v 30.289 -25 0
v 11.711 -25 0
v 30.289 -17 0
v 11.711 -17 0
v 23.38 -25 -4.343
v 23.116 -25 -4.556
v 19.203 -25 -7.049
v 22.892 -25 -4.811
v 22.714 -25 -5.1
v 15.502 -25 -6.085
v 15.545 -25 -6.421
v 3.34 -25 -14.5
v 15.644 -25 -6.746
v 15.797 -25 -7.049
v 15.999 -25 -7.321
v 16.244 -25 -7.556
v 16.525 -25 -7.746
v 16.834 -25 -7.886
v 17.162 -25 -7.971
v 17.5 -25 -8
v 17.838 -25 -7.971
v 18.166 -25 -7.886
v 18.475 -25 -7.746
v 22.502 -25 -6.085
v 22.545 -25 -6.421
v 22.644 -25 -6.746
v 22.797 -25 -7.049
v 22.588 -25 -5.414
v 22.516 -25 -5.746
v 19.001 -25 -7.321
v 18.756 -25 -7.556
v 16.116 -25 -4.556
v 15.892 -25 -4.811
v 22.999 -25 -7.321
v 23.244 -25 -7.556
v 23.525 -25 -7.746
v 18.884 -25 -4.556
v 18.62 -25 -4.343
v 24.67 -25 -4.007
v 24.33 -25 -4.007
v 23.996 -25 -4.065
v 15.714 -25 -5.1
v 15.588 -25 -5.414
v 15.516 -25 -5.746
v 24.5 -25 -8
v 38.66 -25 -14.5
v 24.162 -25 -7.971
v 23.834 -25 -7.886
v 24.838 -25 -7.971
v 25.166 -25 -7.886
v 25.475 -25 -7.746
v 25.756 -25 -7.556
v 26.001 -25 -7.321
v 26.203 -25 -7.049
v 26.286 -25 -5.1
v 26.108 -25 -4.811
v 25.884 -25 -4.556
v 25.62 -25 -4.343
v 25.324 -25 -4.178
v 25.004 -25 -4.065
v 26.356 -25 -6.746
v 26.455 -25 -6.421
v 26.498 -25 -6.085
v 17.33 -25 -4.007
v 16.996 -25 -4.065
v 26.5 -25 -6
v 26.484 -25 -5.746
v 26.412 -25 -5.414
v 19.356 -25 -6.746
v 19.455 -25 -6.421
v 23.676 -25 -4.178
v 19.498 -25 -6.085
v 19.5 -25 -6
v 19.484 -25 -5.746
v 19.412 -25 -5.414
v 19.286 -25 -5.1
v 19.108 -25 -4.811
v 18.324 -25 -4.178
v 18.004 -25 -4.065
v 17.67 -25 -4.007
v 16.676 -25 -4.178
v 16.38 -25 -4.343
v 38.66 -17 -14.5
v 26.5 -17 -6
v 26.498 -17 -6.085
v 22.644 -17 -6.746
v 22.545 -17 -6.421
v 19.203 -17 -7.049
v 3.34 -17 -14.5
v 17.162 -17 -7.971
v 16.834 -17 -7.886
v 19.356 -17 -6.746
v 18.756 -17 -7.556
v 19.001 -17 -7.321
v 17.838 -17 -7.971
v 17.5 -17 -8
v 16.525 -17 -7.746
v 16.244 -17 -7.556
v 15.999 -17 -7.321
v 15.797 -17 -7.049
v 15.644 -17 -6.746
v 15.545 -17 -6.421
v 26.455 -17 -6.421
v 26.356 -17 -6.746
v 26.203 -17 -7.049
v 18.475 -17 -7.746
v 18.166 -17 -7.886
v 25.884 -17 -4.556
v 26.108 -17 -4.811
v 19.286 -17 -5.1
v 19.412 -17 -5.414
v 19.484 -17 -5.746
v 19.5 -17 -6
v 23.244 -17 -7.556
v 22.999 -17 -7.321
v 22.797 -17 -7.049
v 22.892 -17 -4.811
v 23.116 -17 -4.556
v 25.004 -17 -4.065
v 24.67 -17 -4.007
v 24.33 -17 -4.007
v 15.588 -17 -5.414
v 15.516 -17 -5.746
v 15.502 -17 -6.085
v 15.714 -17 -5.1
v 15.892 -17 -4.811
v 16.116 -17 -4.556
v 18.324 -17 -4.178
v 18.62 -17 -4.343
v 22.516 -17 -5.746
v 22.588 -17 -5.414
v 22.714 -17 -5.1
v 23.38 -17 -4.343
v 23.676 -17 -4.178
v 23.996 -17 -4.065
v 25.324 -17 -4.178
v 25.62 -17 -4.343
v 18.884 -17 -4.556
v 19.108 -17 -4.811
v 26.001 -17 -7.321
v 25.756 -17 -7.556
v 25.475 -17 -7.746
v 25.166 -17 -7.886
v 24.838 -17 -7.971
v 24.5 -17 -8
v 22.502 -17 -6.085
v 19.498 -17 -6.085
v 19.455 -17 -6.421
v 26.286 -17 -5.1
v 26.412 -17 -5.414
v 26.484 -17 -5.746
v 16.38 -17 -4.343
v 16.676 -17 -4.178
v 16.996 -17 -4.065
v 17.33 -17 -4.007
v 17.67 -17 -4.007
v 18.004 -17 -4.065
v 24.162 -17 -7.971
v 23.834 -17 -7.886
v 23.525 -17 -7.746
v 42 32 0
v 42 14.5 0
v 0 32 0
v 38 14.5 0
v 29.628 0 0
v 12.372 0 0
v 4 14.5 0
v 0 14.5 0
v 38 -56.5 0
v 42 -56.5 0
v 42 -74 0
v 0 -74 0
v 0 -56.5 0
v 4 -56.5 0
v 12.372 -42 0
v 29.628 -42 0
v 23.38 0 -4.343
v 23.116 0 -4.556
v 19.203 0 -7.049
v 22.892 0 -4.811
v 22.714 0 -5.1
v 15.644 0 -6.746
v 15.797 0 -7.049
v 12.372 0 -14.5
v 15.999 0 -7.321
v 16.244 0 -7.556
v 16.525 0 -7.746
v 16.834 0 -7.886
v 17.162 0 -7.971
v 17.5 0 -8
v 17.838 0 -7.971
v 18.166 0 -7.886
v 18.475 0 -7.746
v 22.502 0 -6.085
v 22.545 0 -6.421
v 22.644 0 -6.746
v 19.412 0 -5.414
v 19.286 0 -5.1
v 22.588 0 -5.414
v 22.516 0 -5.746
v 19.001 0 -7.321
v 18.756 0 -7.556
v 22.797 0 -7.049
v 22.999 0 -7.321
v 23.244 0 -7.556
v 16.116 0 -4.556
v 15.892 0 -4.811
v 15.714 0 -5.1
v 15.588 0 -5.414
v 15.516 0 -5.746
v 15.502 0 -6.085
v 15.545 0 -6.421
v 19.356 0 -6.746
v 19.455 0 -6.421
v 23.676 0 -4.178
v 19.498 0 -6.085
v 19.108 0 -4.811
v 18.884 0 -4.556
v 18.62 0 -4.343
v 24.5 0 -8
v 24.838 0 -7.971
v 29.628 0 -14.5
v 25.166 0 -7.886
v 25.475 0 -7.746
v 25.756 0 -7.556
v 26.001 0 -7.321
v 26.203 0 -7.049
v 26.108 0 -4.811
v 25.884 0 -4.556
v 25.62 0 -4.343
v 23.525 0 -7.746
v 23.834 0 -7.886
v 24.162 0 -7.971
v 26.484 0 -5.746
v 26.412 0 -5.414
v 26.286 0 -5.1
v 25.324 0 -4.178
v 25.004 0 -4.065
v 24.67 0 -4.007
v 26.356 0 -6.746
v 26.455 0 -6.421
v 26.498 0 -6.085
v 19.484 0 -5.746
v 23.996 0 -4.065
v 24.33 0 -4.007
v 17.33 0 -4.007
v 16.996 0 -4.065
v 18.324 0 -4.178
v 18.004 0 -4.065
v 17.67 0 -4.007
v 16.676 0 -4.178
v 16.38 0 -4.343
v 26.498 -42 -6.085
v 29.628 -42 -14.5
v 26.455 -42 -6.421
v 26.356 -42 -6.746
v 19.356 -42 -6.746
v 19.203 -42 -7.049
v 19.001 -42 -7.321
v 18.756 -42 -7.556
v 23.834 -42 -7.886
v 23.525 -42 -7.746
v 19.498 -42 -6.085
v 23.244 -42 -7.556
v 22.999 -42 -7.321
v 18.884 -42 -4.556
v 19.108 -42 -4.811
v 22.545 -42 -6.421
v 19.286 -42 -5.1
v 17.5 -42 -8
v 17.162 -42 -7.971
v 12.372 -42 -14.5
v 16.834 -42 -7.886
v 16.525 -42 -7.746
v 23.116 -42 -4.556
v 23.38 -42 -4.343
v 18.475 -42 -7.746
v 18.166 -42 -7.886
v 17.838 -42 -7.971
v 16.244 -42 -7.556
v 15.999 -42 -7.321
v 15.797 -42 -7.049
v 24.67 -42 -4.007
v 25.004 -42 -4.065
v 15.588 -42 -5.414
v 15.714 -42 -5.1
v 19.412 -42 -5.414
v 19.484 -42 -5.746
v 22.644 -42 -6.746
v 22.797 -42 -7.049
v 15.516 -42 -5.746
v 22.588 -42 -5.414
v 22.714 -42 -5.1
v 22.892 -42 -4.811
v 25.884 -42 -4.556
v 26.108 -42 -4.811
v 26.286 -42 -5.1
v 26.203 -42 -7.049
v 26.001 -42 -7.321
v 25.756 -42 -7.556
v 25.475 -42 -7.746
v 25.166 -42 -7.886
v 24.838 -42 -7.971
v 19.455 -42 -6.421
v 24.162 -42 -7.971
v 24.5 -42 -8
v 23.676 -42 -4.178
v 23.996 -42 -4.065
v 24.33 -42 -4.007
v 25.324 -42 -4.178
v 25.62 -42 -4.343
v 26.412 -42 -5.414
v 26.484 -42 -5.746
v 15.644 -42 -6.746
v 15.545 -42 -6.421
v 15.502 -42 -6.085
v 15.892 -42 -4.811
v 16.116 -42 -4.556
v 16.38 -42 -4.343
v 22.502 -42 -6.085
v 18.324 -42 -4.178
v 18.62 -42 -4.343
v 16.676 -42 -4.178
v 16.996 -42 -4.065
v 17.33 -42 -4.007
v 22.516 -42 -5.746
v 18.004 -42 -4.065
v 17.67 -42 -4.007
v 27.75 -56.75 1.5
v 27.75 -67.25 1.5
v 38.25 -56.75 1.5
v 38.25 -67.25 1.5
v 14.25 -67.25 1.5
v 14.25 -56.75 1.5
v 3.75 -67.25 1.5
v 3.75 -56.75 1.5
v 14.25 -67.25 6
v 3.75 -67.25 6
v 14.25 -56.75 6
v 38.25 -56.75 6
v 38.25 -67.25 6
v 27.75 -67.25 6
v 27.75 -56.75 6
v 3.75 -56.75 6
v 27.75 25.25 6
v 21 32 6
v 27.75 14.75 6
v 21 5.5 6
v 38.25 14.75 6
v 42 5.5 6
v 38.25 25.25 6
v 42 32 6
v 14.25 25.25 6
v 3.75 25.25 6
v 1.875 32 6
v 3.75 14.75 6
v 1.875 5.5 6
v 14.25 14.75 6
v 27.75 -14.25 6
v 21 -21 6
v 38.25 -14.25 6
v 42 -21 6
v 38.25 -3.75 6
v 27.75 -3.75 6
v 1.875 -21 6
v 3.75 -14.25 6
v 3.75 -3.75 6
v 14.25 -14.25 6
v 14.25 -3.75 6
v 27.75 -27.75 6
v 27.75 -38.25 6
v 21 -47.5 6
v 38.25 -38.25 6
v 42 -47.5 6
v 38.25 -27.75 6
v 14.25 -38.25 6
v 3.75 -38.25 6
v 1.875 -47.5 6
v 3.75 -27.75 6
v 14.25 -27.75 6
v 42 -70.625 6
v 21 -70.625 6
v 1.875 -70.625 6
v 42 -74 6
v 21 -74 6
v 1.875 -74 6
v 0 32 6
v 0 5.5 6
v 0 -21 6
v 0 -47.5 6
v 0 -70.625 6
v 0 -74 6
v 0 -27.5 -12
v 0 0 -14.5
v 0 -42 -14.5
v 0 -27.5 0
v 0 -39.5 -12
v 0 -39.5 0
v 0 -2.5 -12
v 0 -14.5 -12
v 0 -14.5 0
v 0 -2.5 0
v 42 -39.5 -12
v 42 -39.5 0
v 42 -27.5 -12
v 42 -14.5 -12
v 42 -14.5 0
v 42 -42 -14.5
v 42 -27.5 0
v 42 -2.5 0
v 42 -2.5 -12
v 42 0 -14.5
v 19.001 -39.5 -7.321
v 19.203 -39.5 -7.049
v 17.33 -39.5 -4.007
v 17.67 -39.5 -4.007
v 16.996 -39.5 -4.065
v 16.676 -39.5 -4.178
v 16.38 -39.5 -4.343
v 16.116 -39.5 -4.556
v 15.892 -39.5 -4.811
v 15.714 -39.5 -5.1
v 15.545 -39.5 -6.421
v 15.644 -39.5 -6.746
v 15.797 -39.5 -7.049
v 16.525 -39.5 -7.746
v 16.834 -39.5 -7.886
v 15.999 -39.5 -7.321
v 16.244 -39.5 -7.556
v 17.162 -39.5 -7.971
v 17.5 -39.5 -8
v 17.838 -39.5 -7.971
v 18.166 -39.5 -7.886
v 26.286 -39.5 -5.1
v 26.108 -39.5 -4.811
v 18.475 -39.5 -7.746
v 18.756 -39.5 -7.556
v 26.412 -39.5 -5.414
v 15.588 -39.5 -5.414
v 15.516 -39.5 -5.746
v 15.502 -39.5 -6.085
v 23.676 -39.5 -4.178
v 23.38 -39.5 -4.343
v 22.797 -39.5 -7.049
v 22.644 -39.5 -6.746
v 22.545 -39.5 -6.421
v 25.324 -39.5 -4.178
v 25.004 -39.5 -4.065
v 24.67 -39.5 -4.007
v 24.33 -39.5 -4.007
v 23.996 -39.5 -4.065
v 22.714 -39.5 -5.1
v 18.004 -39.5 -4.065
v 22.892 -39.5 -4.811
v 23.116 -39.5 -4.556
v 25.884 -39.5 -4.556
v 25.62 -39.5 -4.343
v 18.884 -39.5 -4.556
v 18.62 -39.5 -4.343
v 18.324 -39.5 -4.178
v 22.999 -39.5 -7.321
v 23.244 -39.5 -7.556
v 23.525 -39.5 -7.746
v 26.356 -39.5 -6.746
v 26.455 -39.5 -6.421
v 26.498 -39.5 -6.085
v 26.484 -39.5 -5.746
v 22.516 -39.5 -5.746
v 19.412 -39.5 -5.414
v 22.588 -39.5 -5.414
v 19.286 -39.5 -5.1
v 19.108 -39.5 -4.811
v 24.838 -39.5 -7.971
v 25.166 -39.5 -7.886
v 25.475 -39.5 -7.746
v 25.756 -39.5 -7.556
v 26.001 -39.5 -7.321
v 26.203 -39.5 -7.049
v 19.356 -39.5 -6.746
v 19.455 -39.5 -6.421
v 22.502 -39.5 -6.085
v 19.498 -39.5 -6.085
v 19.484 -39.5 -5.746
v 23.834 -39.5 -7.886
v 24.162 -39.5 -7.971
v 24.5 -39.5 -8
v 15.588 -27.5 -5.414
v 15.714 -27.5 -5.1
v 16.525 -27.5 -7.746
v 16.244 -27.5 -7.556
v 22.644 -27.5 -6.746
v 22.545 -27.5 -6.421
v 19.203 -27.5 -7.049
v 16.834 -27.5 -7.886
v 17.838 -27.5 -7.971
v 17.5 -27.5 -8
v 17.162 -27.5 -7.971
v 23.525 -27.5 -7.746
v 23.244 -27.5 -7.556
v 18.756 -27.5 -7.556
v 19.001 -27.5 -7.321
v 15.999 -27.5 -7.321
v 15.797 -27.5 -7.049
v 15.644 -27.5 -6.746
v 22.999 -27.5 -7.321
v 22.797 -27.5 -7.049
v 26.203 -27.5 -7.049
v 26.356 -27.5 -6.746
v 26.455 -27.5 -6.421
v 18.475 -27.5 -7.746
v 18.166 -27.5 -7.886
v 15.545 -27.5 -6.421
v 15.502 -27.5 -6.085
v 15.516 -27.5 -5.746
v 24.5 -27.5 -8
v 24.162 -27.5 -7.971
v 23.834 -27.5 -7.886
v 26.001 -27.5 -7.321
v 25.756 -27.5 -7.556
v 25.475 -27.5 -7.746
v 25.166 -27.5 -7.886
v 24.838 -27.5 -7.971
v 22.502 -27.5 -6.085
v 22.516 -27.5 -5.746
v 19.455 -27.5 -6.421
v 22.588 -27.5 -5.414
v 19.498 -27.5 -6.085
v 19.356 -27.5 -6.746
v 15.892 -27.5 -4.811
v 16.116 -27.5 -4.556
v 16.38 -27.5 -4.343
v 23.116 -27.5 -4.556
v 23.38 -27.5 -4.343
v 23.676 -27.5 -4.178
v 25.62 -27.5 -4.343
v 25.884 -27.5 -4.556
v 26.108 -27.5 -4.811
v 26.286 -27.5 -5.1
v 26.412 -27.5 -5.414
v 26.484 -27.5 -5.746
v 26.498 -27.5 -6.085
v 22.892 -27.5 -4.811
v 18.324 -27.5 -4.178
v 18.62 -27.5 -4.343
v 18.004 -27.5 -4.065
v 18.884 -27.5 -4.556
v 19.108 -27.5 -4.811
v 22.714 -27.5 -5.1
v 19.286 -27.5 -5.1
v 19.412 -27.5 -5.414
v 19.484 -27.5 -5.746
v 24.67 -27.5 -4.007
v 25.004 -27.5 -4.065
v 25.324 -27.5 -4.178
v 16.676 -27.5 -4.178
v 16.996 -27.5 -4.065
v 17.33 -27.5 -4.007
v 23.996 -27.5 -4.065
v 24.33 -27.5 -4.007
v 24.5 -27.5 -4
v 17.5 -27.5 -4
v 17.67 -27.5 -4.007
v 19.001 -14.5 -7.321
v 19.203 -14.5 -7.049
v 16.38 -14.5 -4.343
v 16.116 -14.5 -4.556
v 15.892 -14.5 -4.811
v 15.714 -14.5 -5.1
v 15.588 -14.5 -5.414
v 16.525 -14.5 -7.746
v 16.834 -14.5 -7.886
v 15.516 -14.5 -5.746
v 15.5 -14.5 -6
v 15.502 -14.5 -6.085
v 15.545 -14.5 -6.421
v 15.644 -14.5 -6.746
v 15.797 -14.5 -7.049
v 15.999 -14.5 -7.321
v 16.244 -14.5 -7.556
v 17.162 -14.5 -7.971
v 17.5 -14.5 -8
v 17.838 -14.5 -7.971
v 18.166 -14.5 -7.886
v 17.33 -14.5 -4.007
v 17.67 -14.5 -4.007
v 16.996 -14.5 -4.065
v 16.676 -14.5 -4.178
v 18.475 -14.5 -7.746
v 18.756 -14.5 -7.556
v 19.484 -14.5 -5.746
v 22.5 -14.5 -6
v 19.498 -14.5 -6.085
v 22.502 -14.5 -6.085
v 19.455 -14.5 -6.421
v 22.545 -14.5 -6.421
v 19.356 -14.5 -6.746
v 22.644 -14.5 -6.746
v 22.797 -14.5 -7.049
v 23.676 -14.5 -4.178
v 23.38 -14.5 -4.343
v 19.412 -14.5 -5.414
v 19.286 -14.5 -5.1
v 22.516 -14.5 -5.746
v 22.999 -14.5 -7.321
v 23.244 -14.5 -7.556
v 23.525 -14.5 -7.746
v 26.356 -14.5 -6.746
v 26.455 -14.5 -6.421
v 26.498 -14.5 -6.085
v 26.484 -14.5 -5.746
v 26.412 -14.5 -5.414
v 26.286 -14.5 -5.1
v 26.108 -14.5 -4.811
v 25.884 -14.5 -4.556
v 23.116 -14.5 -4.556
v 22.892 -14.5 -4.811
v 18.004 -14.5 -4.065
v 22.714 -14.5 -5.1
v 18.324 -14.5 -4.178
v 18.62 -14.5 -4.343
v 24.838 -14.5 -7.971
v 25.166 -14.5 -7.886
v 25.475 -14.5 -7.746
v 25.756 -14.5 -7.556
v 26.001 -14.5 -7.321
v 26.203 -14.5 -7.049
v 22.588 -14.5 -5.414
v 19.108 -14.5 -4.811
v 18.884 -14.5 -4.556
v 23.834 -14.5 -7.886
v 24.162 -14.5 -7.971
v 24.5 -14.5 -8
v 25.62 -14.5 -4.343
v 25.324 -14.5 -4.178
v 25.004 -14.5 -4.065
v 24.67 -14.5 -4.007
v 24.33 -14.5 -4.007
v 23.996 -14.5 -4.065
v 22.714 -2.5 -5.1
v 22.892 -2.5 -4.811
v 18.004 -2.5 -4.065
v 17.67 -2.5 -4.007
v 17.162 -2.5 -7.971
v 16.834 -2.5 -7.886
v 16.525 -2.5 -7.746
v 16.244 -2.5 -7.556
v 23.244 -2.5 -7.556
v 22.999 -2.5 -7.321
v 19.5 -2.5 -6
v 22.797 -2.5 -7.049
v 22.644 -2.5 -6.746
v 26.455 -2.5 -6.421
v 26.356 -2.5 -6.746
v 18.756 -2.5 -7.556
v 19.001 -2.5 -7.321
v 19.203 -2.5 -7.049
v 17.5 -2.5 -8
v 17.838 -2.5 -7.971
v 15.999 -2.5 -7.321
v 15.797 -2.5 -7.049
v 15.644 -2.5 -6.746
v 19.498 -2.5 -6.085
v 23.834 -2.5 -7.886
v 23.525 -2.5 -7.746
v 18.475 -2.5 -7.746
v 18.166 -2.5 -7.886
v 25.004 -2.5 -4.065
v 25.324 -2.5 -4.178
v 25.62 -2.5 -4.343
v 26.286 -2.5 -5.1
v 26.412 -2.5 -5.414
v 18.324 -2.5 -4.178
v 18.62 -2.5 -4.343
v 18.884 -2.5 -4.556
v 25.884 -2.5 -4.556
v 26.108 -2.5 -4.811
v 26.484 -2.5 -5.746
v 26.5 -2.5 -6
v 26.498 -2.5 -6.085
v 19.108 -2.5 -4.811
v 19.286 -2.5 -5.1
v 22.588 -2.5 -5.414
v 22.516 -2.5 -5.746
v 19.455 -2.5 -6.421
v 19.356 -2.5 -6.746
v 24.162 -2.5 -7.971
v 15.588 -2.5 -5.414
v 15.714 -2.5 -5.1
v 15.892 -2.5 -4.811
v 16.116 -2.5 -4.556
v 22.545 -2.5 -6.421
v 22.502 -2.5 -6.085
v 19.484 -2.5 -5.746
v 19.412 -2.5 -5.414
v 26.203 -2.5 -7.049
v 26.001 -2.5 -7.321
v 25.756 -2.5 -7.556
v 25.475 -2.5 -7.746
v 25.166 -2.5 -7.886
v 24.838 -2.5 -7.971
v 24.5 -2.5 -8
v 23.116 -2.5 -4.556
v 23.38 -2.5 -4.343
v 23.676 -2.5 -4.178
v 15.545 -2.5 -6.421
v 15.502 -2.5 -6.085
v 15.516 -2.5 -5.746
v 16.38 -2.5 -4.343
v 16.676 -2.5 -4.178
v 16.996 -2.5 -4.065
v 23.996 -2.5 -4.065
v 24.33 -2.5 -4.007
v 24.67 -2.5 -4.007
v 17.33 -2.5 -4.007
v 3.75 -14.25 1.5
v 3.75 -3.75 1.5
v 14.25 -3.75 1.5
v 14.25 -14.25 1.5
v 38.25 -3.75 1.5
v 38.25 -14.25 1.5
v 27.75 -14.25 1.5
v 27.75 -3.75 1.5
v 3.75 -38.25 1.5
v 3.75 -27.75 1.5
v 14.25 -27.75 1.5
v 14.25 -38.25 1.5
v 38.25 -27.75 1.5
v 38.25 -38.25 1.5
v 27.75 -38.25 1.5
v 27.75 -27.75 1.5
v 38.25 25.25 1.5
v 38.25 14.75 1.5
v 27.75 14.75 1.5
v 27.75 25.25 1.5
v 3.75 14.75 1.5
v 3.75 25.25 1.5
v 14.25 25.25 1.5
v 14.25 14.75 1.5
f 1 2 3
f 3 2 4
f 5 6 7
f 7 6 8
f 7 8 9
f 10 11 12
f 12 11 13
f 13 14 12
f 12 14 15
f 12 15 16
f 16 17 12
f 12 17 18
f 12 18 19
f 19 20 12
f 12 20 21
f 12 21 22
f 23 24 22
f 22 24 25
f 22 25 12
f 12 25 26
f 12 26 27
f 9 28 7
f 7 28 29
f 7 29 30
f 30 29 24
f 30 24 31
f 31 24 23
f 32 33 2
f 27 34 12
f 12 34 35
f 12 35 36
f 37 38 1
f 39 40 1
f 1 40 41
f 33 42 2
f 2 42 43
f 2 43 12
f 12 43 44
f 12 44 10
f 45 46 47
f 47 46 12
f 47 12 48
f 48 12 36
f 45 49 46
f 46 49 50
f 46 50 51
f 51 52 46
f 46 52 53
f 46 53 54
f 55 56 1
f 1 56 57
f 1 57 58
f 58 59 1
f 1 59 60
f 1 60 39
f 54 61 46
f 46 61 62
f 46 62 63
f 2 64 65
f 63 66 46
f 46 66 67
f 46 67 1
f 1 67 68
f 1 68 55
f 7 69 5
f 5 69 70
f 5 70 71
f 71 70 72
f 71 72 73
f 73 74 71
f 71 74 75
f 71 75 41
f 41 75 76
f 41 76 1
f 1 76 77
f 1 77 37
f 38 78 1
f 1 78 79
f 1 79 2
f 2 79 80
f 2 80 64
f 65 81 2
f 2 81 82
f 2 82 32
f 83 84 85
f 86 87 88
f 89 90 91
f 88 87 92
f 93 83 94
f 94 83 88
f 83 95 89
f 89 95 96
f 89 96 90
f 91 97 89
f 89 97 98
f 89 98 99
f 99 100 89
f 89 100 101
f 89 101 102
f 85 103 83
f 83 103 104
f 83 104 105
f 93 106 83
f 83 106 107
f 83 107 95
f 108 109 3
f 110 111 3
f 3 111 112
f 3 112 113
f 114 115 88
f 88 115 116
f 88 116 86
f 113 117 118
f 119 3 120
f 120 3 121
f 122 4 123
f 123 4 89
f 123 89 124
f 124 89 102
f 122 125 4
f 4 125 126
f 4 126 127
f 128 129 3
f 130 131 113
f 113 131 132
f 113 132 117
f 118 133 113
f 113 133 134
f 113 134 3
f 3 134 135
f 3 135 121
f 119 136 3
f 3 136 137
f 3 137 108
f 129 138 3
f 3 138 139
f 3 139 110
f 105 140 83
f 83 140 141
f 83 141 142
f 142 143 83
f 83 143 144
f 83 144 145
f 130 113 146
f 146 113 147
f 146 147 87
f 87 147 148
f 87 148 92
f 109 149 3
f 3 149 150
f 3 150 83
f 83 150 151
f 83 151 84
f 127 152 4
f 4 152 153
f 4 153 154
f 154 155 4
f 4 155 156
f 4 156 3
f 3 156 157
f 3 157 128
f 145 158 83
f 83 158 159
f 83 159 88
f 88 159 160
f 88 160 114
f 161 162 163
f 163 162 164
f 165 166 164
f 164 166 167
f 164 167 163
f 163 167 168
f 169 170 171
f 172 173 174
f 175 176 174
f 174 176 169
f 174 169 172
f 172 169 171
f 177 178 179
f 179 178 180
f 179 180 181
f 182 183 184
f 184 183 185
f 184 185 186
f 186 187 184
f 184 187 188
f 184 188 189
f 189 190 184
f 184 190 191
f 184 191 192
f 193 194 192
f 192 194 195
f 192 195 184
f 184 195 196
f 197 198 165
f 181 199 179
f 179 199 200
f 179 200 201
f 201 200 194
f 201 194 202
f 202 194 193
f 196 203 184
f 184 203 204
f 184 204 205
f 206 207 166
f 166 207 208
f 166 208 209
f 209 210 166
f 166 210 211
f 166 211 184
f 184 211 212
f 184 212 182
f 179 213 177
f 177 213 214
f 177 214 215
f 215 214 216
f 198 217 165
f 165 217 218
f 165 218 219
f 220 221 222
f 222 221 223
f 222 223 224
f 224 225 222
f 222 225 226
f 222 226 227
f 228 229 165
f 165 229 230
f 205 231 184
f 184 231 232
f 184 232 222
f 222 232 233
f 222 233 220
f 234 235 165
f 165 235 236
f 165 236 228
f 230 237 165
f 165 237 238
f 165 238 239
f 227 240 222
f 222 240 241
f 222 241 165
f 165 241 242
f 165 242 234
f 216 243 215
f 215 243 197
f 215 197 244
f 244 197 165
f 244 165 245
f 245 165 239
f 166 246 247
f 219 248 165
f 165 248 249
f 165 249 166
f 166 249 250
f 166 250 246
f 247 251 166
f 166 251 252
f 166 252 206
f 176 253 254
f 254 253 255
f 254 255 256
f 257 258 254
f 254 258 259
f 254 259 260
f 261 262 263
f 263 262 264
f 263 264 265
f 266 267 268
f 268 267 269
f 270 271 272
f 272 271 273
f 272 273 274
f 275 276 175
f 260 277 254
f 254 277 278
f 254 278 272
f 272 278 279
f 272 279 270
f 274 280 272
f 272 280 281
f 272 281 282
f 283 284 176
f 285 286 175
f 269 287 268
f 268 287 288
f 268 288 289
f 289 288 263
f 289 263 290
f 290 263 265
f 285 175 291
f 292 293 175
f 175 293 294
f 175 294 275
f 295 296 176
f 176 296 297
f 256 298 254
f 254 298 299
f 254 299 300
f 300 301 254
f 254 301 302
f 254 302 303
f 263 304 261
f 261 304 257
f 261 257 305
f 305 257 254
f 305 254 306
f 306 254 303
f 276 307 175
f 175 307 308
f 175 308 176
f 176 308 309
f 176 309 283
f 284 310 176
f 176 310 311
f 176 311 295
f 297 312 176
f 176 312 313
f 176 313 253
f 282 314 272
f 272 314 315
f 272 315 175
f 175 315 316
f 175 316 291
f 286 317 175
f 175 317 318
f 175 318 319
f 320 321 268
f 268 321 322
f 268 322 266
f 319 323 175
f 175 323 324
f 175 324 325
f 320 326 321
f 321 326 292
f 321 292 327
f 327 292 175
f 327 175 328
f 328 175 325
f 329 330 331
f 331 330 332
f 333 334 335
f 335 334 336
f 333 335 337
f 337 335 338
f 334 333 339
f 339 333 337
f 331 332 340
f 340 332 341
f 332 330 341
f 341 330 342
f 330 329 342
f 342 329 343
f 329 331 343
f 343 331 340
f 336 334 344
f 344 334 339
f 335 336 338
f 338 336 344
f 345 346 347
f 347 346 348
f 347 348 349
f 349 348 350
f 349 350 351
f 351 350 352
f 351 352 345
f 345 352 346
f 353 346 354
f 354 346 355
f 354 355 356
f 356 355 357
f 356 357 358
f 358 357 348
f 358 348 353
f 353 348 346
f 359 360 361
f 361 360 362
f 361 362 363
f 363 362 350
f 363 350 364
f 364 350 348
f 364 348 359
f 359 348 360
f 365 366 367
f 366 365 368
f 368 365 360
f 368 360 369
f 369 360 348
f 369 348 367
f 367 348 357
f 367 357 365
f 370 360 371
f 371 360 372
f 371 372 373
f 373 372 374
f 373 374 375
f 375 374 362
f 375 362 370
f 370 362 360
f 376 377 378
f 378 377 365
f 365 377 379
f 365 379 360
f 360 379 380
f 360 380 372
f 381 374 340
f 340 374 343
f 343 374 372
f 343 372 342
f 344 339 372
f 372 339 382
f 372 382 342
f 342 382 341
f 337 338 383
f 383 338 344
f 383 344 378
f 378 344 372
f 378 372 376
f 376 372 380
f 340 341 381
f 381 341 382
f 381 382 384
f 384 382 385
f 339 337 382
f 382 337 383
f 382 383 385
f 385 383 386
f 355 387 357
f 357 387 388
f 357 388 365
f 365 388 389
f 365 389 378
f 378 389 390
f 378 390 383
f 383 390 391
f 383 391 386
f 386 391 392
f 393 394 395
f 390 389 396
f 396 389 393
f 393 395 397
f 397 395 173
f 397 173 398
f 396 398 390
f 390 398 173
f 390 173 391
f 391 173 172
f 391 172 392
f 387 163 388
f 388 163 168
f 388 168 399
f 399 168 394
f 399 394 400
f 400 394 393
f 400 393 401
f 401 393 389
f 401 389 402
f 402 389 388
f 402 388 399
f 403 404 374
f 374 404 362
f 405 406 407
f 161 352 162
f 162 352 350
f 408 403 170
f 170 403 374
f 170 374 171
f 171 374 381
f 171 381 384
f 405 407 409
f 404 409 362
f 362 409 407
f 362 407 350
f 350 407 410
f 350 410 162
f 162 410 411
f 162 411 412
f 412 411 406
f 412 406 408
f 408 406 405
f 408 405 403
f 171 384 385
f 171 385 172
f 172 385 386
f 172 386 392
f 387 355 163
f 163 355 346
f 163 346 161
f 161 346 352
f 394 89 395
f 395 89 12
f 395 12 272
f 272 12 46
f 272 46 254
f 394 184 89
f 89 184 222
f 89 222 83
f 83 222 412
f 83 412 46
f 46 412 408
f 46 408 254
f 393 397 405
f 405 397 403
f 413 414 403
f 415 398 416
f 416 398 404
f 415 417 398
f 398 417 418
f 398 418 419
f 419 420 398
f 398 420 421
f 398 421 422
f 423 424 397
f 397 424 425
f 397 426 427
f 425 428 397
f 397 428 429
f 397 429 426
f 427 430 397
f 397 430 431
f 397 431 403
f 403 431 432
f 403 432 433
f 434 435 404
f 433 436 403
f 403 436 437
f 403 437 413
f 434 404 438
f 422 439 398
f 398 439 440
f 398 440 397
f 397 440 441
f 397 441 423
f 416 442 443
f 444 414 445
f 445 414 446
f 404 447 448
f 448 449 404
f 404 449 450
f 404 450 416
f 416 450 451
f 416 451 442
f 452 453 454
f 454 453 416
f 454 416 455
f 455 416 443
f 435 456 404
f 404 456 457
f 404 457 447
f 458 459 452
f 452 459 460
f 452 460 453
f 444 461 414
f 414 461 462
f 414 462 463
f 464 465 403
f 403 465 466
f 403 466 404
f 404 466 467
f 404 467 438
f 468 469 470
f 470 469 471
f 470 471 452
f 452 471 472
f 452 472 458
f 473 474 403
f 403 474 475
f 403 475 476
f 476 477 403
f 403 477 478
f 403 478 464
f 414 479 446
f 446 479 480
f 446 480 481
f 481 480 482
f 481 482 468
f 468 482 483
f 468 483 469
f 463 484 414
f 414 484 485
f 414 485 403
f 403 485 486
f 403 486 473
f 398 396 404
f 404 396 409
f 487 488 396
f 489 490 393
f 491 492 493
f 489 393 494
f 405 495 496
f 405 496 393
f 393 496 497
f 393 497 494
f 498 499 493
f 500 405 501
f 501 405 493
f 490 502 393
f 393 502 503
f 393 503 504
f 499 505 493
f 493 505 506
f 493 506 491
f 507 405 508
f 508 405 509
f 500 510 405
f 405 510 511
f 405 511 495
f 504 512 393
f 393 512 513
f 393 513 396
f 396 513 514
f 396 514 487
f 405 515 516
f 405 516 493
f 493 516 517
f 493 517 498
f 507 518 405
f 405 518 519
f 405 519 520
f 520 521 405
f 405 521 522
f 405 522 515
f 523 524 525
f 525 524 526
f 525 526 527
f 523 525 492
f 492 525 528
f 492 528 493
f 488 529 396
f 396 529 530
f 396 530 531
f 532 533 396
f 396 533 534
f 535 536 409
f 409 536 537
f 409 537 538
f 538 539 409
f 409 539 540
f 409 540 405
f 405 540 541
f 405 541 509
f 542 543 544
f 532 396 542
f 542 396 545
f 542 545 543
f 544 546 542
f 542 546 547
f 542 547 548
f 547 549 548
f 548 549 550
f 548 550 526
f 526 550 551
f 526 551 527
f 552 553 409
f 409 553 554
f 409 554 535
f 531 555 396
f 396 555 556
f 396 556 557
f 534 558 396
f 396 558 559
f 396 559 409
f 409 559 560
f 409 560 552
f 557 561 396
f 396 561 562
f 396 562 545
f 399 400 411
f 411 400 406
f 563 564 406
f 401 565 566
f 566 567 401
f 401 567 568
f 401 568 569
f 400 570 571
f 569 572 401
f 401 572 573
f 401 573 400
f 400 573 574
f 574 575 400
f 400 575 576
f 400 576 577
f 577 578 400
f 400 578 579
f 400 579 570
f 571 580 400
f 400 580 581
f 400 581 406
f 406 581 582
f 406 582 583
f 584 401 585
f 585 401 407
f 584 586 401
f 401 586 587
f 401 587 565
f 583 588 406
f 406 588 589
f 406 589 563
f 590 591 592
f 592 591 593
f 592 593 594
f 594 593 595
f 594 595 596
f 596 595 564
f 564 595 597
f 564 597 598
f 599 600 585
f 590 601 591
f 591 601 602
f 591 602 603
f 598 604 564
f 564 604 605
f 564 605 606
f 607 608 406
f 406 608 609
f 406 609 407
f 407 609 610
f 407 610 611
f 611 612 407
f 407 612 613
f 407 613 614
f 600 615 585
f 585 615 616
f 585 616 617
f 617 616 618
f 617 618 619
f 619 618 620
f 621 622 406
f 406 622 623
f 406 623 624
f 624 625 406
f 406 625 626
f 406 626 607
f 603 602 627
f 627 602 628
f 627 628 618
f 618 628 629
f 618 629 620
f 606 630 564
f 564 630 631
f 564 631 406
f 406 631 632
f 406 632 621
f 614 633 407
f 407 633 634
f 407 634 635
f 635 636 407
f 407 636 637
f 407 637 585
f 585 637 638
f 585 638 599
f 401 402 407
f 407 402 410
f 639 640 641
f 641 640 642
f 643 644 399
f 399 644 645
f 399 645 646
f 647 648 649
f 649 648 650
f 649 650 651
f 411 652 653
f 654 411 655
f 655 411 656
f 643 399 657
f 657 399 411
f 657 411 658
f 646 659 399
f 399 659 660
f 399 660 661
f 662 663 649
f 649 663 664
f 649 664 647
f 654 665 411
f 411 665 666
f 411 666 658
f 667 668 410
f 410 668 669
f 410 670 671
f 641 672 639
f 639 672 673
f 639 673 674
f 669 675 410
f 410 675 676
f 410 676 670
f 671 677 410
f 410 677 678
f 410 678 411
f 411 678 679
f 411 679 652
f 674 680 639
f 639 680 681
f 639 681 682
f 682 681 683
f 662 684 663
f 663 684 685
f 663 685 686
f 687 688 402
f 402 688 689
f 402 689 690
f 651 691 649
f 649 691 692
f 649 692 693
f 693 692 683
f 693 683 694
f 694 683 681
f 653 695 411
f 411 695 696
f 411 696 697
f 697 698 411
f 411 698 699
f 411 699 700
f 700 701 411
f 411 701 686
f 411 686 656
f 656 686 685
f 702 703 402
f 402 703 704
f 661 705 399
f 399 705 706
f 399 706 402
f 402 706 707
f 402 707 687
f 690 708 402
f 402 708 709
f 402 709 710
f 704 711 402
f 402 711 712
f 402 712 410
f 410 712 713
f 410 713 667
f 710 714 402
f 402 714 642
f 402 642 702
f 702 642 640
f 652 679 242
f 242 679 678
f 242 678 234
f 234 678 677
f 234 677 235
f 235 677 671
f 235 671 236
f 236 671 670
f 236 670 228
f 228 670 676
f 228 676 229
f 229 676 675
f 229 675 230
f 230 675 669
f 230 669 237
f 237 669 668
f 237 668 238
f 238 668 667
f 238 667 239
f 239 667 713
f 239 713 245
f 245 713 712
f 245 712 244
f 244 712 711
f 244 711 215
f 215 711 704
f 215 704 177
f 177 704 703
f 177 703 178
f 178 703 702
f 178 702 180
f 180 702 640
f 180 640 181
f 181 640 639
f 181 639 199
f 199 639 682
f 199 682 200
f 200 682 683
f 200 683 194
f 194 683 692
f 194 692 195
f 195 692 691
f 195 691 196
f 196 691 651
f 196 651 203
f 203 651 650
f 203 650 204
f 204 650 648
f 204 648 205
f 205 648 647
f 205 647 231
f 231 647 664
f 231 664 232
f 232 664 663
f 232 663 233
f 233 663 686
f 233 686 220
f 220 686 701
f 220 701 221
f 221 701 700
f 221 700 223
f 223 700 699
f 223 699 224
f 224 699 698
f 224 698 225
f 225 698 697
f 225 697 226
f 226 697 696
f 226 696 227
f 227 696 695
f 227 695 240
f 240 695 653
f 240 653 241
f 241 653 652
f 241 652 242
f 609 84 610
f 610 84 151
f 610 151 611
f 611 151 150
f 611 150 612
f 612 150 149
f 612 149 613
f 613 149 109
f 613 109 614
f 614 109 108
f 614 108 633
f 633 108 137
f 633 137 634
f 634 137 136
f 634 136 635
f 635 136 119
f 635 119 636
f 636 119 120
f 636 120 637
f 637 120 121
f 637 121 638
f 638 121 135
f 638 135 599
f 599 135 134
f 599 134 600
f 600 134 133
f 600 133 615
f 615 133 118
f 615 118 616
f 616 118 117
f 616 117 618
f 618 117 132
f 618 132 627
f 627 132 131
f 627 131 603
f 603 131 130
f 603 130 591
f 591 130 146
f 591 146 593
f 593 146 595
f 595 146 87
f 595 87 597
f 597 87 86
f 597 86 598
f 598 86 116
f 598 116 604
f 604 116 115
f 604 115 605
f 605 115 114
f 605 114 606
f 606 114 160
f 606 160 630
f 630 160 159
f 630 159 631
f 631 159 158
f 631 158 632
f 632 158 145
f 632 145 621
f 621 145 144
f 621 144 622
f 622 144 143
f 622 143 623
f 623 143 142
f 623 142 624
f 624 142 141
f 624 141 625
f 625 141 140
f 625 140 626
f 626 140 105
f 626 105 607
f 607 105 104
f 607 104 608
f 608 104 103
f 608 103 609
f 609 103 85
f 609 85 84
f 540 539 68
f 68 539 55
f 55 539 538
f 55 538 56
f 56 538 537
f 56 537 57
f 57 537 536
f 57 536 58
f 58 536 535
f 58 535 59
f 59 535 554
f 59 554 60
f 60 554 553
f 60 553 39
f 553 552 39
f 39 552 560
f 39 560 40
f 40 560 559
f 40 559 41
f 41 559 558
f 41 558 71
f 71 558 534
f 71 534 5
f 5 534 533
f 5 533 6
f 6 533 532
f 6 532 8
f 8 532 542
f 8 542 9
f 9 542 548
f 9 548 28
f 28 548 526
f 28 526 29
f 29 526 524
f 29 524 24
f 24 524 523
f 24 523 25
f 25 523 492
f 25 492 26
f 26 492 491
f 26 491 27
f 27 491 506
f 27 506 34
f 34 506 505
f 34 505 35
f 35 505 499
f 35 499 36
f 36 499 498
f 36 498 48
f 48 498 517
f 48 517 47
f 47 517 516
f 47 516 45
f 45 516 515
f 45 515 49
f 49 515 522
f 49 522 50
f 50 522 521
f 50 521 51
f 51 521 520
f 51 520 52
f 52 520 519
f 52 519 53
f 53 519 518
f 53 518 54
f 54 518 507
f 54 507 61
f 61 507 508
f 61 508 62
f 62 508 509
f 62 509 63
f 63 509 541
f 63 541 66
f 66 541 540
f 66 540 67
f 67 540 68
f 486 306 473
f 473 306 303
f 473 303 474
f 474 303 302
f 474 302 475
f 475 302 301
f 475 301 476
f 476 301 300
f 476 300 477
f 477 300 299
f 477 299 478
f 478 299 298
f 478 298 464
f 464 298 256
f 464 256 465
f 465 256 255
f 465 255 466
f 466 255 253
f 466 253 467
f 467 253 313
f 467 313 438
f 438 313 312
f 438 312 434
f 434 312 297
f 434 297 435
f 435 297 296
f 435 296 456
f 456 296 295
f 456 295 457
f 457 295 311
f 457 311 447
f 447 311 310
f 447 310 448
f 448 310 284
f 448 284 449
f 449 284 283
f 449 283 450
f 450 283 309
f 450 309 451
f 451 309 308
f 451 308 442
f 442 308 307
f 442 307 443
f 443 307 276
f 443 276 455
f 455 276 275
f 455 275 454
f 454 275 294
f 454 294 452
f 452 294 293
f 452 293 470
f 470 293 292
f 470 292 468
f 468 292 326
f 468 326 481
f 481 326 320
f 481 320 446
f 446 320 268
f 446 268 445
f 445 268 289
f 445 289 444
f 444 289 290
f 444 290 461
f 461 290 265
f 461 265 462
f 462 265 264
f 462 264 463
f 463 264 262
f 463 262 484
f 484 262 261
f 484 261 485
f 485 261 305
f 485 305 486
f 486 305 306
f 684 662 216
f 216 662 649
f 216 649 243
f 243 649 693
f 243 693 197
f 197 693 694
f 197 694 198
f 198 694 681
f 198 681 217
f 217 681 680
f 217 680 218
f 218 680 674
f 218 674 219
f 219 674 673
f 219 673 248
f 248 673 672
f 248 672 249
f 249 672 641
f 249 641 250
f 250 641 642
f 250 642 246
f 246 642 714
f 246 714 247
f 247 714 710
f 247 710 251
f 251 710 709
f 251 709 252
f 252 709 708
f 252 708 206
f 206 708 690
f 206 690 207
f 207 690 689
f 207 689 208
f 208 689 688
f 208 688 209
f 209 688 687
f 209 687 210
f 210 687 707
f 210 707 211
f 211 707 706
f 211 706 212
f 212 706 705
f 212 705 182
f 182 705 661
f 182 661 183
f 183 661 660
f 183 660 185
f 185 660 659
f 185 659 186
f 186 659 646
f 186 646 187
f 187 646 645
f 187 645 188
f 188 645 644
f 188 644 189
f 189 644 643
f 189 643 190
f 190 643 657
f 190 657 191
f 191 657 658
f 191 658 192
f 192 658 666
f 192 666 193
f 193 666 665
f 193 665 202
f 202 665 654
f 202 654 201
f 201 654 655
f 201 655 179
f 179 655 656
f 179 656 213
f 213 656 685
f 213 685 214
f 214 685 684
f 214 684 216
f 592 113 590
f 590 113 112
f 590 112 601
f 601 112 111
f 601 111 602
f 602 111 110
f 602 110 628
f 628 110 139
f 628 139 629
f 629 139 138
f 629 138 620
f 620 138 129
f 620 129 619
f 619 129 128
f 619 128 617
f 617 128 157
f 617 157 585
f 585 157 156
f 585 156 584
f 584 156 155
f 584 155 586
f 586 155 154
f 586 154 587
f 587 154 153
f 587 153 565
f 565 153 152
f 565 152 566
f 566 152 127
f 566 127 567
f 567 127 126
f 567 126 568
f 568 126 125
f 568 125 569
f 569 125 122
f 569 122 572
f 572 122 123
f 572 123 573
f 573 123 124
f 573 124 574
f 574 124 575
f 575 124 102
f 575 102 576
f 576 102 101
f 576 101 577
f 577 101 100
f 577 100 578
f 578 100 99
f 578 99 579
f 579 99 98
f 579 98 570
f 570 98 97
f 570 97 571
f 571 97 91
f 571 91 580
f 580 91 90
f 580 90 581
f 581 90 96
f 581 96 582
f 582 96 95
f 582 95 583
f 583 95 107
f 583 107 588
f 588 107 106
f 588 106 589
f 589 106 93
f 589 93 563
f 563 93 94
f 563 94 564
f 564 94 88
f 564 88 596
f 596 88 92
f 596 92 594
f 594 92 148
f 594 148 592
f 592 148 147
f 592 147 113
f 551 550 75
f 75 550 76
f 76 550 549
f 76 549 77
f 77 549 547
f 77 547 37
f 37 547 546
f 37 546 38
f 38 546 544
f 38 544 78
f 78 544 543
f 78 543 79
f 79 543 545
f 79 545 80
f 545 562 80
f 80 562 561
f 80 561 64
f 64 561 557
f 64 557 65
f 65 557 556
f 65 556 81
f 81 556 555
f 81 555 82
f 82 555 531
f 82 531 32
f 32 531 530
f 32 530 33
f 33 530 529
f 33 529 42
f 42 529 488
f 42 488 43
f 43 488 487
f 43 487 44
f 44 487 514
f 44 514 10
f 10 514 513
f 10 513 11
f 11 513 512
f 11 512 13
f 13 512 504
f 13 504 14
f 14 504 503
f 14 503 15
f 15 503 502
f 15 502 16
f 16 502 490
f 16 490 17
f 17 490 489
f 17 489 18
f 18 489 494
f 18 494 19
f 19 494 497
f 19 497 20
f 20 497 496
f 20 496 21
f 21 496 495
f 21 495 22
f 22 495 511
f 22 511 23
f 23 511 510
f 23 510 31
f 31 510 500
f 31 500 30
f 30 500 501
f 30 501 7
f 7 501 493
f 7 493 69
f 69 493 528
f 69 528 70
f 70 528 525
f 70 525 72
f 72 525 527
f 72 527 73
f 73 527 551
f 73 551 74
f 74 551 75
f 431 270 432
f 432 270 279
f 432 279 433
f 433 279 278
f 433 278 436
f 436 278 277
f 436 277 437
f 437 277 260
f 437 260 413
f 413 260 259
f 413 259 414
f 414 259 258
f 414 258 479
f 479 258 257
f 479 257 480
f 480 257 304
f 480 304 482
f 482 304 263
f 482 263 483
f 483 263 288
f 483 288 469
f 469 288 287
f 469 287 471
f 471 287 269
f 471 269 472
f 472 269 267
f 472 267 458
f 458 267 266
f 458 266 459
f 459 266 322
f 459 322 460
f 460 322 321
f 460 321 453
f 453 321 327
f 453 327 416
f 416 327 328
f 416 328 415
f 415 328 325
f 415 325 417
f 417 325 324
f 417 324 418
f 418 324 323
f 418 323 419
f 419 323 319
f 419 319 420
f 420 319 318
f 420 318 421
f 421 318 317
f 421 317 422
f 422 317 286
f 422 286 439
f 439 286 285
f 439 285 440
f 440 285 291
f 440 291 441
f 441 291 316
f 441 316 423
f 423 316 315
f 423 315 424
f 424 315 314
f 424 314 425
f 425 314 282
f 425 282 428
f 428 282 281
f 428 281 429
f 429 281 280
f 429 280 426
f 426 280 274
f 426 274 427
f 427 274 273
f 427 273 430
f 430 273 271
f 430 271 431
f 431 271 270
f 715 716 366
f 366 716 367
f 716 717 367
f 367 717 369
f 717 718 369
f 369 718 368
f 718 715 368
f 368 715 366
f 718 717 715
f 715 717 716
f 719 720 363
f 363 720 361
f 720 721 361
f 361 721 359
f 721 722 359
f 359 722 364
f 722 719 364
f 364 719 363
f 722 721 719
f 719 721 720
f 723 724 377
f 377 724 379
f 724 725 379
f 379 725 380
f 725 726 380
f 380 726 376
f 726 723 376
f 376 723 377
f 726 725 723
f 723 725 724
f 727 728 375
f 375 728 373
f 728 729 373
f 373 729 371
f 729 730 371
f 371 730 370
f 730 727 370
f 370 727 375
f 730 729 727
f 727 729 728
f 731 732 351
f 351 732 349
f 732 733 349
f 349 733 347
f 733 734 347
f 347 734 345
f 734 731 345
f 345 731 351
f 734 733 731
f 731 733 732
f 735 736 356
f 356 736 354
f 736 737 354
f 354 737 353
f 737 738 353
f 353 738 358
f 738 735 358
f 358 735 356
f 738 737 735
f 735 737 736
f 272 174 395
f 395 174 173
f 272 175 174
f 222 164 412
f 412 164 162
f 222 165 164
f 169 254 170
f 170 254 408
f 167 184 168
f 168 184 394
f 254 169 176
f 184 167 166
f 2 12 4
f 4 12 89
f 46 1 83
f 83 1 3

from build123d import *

# Parameters (mm, degrees)
ESQUISSE1_W                  = 42
ESQUISSE1_H                  = 106
BOSS_EXTRU_1_DEPTH           = 6
ESQUISSE2_W                  = 42
ESQUISSE2_H                  = 17
BOSS_EXTRU_3_DEPTH           = 14.5
ESQUISSE3_W                  = 12
ESQUISSE3_H                  = 12
ENL_V_MAT_EXTRU_3_DEPTH      = 87.314830707
ESQUISSE4_R                  = 2
ENL_V_MAT_EXTRU_4_DEPTH      = 42
ESQUISSE5_W                  = 10.5
ESQUISSE5_H                  = 10.5
ENL_V_MAT_EXTRU_5_DEPTH      = 4.5
SYM_TRIE3_COPY_1_SKETCH_W    = 10.5
SYM_TRIE3_COPY_1_SKETCH_H    = 10.5
SYM_TRIE3_COPY_1_DEPTH       = 4.5
SYM_TRIE4_COPY_1_SKETCH_W    = 10.5
SYM_TRIE4_COPY_1_SKETCH_H    = 10.5
SYM_TRIE4_COPY_1_DEPTH       = 4.5
SYM_TRIE5_COPY_1_SKETCH_W    = 10.5
SYM_TRIE5_COPY_1_SKETCH_H    = 10.5
SYM_TRIE5_COPY_1_DEPTH       = 4.5
SYM_TRIE5_COPY_2_SKETCH_W    = 10.5
SYM_TRIE5_COPY_2_SKETCH_H    = 10.5
SYM_TRIE5_COPY_2_DEPTH       = 4.5
SYM_TRIE5_COPY_3_SKETCH_W    = 10.5
SYM_TRIE5_COPY_3_SKETCH_H    = 10.5
SYM_TRIE5_COPY_3_DEPTH       = 4.5
BOSS_EXTRU_4_DEPTH           = 4
BOSS_EXTRU_5_REACH           = 88.315
R_P_TITION_CIRCULAIRE1_COUNT = 2
SYM_TRIE6_COPY_1_DEPTH       = 4
SYM_TRIE6_COPY_2_REACH       = 88.315
ESQUISSE8_W                  = 12
ESQUISSE8_H                  = 8
BOSS_EXTRU_6_DEPTH           = 14.5
CHANFREIN2_SIZE              = 15
CHANFREIN2_SIZE_2            = 8.660254038
SYM_TRIE7_START              = -25
SYM_TRIE7_DEPTH              = 8


# Read off the part's stored shape, not the designer's step: Symétrie7
with BuildPart() as part:
    # Esquisse1 → Boss.-Extru.1 (new body)
    with BuildSketch(Plane.XY):
        with Locations((21, -21)):
            Rectangle(ESQUISSE1_W, ESQUISSE1_H)
    extrude(amount=BOSS_EXTRU_1_DEPTH)

    # Esquisse2 → Boss.-Extru.3 (add)
    with BuildSketch(Plane(origin=(0, 0, 0), x_dir=(-1, 0, 0), z_dir=(0, 0, -1))):
        with Locations((-21, -33.5)):
            Rectangle(ESQUISSE2_W, ESQUISSE2_H)
    boss_extru_3 = extrude(amount=BOSS_EXTRU_3_DEPTH)

    # Esquisse3 → Enlèv. mat.-Extru.3 (cut, through all)
    with BuildSketch(Plane(origin=(42, 0, 0), x_dir=(0, 0, -1), z_dir=(1, 0, 0))):
        with Locations((6, -33.5)):
            Rectangle(ESQUISSE3_W, ESQUISSE3_H)
    enl_v_mat_extru_3 = extrude(amount=-ENL_V_MAT_EXTRU_3_DEPTH, mode=Mode.SUBTRACT)

    # Symétrie1: Boss.-Extru.3, Enlèv. mat.-Extru.3 across plane
    add(boss_extru_3.mirror(Plane(origin=(0, -21, 0), x_dir=(0, 0, 1), z_dir=(0, -1, 0))))
    add(enl_v_mat_extru_3.mirror(Plane(origin=(0, -21, 0), x_dir=(0, 0, 1), z_dir=(0, -1, 0))), mode=Mode.SUBTRACT)

    # Esquisse4 → Enlèv. mat.-Extru.4 (cut)
    with BuildSketch(Plane.XZ.offset(42)):
        with Locations(Location((24.5, -6, 0), (0, 0, 270))):
            Circle(ESQUISSE4_R)
        with Locations(Location((17.5, -6, 0), (0, 0, 270))):
            Circle(ESQUISSE4_R)
    extrude(amount=-ENL_V_MAT_EXTRU_4_DEPTH, mode=Mode.SUBTRACT)

    # Esquisse5 → Enlèv. mat.-Extru.5 (cut)
    with BuildSketch(Plane.XY.offset(6)):
        with Locations((9, -9)):
            Rectangle(ESQUISSE5_W, ESQUISSE5_H)
    enl_v_mat_extru_5 = extrude(amount=-ENL_V_MAT_EXTRU_5_DEPTH, mode=Mode.SUBTRACT)

    # Symétrie2: Enlèv. mat.-Extru.5 across plane
    add(enl_v_mat_extru_5.mirror(Plane(origin=(21, 0, 0), x_dir=(0, 0, 1), z_dir=(1, 0, 0))), mode=Mode.SUBTRACT)

    # Symétrie3: Enlèv. mat.-Extru.5 across plane
    add(enl_v_mat_extru_5.mirror(Plane(origin=(0, -21, 0), x_dir=(0, 0, 1), z_dir=(0, -1, 0))), mode=Mode.SUBTRACT)

    # Symétrie3 copy 1 sketch → Symétrie3 copy 1 (cut)
    with BuildSketch(Plane(origin=(42, -42, 6), x_dir=(-1, 0, 0), z_dir=(0, 0, 1))):
        with Locations((9, -9)):
            Rectangle(SYM_TRIE3_COPY_1_SKETCH_W, SYM_TRIE3_COPY_1_SKETCH_H)
    extrude(amount=-SYM_TRIE3_COPY_1_DEPTH, mode=Mode.SUBTRACT)

    # Symétrie4: Enlèv. mat.-Extru.5 across plane
    add(enl_v_mat_extru_5.mirror(Plane(origin=(0, 5.5, 0), x_dir=(0, 0, 1), z_dir=(0, -1, 0))), mode=Mode.SUBTRACT)

    # Symétrie4 copy 1 sketch → Symétrie4 copy 1 (cut)
    with BuildSketch(Plane(origin=(42, 11, 6), x_dir=(-1, 0, 0), z_dir=(0, 0, 1))):
        with Locations((9, -9)):
            Rectangle(SYM_TRIE4_COPY_1_SKETCH_W, SYM_TRIE4_COPY_1_SKETCH_H)
    extrude(amount=-SYM_TRIE4_COPY_1_DEPTH, mode=Mode.SUBTRACT)

    # Symétrie5 copy 1 sketch → Symétrie5 copy 1 (cut)
    with BuildSketch(Plane(origin=(0, -53, 6), x_dir=(1, 0, 0), z_dir=(0, 0, 1))):
        with Locations((9, -9)):
            Rectangle(SYM_TRIE5_COPY_1_SKETCH_W, SYM_TRIE5_COPY_1_SKETCH_H)
    extrude(amount=-SYM_TRIE5_COPY_1_DEPTH, mode=Mode.SUBTRACT)

    # Symétrie5 copy 2 sketch → Symétrie5 copy 2 (cut)
    with BuildSketch(Plane(origin=(42, -53, 6), x_dir=(-1, 0, 0), z_dir=(0, 0, 1))):
        with Locations((9, 9)):
            Rectangle(SYM_TRIE5_COPY_2_SKETCH_W, SYM_TRIE5_COPY_2_SKETCH_H)
    extrude(amount=-SYM_TRIE5_COPY_2_DEPTH, mode=Mode.SUBTRACT)

    # Symétrie5 copy 3 sketch → Symétrie5 copy 3 (cut)
    with BuildSketch(Plane(origin=(0, -95, 6), x_dir=(1, 0, 0), z_dir=(0, 0, 1))):
        with Locations((9, 9)):
            Rectangle(SYM_TRIE5_COPY_3_SKETCH_W, SYM_TRIE5_COPY_3_SKETCH_H)
    extrude(amount=-SYM_TRIE5_COPY_3_DEPTH, mode=Mode.SUBTRACT)

    # Esquisse6 → Boss.-Extru.4 (add)
    with BuildSketch(Plane.ZY):
        Polygon((-14.5, -42), (0, -56.5), (0, -42), align=None)
    boss_extru_4 = extrude(amount=-BOSS_EXTRU_4_DEPTH)

    # Boss.-Extru.5: up to this face of the body (flat: up to its plane)
    boss_extru_5_end = Plane(part.part.faces().sort_by_distance((2, -49.25, -7.25))[0])
    # Esquisse7 → Boss.-Extru.5 (add, up to the picked face)
    with BuildSketch(Plane(origin=(0, 0, 0), x_dir=(-1, 0, 0), z_dir=(0, 0, -1)), mode=Mode.PRIVATE) as boss_extru_5_sk1:
        Polygon((-4, -56.5), (-12.371578903, -42), (-4, -42), align=None)
    boss_extru_5_tool1 = split(extrude(boss_extru_5_sk1.sketch, amount=BOSS_EXTRU_5_REACH, mode=Mode.PRIVATE), bisect_by=boss_extru_5_end, keep=Keep.BOTH, mode=Mode.PRIVATE)
    boss_extru_5 = boss_extru_5_tool1.solids().sort_by(Axis((6.790526, -46.833333, 0), (0, 0, -1)))[0]
    add(boss_extru_5)

    # Répétition circulaire1: Boss.-Extru.4, Boss.-Extru.5 ×2 about axis
    r_p_tition_circulaire1_axis = Axis((21, -21, 0), (0, 0, 1))
    add([boss_extru_4.rotate(r_p_tition_circulaire1_axis, i * 360 / R_P_TITION_CIRCULAIRE1_COUNT) for i in range(1, R_P_TITION_CIRCULAIRE1_COUNT)])
    add([boss_extru_5.rotate(r_p_tition_circulaire1_axis, i * 360 / R_P_TITION_CIRCULAIRE1_COUNT) for i in range(1, R_P_TITION_CIRCULAIRE1_COUNT)])

    # Symétrie6: Boss.-Extru.4, Boss.-Extru.5 across plane
    add(boss_extru_4.mirror(Plane(origin=(21, 0, 0), x_dir=(0, 0, 1), z_dir=(1, 0, 0))))
    add(boss_extru_5.mirror(Plane(origin=(21, 0, 0), x_dir=(0, 0, 1), z_dir=(1, 0, 0))))

    # Symétrie6 copy 1 sketch → Symétrie6 copy 1 (add)
    with BuildSketch(Plane(origin=(0, -42, 0), x_dir=(0, 0, 1), z_dir=(-1, 0, 0))):
        Polygon((-14.5, 42), (0, 56.5), (0, 42), align=None)
    extrude(amount=-SYM_TRIE6_COPY_1_DEPTH)

    # Symétrie6 copy 2: up to this face of the body (flat: up to its plane)
    sym_trie6_copy_2_end = Plane(part.part.faces().sort_by_distance((2, 7.25, -7.25))[0])
    # Symétrie6 copy 2 sketch → Symétrie6 copy 2 (add, up to the picked face)
    with BuildSketch(Plane(origin=(0, -42, 0), x_dir=(-1, 0, 0), z_dir=(0, 0, -1)), mode=Mode.PRIVATE) as sym_trie6_copy_2_sk1:
        Polygon((-4, 56.5), (-12.371578903, 42), (-4, 42), align=None)
    sym_trie6_copy_2_tool1 = split(extrude(sym_trie6_copy_2_sk1.sketch, amount=SYM_TRIE6_COPY_2_REACH, mode=Mode.PRIVATE), bisect_by=sym_trie6_copy_2_end, keep=Keep.BOTH, mode=Mode.PRIVATE)
    add(sym_trie6_copy_2_tool1.solids().sort_by(Axis((6.790526, 4.833333, 0), (0, 0, -1)))[0])

    # Esquisse8 → Boss.-Extru.6 (add)
    with BuildSketch(Plane(origin=(0, 0, 0), x_dir=(-1, 0, 0), z_dir=(0, 0, -1))):
        with Locations((-6, -21)):
            Rectangle(ESQUISSE8_W, ESQUISSE8_H)
    extrude(amount=BOSS_EXTRU_6_DEPTH)

    # Chanfrein2
    # the kernel refuses this chamfer: 15, 8.660254038 mm, written as the material it adds along each edge
    # the kernel refuses this chamfer: 15, 8.660254038 mm, written as the material it takes off along each edge
    with BuildSketch(Plane(origin=(12, -17, -14.5), x_dir=(0.01932676561270075, 0, 0.9998132206222079), z_dir=(0, -1, 0))) as chanfrein2_2_piece_1_section:
        Polygon((CHANFREIN2_SIZE * 0.999813220622, CHANFREIN2_SIZE * 0.0193267656127), (-CHANFREIN2_SIZE_2 * 0.0193267656124, CHANFREIN2_SIZE_2 * 0.999813220604), (0, 0), align=None)
    chanfrein2_2_piece_1 = extrude(amount=8, mode=Mode.PRIVATE)
    chanfrein2_2_piece_1 = split(chanfrein2_2_piece_1, bisect_by=Plane(origin=(9.590672915, -21, 0), z_dir=(0, 0, -1)), keep=Keep.TOP, mode=Mode.PRIVATE)
    add(chanfrein2_2_piece_1, mode=Mode.SUBTRACT)

    # Symétrie7 outline → Symétrie7 (add)
    with BuildSketch(Plane(origin=(0, 0, 0), x_dir=(1, 0, 0), z_dir=(0, 1, 0)).offset(SYM_TRIE7_START)):
        Polygon((42, 0), (42, 14.5), (38.660254038, 14.5), (30.288675135, 0), align=None)
    extrude(amount=SYM_TRIE7_DEPTH)


solid = part.part
